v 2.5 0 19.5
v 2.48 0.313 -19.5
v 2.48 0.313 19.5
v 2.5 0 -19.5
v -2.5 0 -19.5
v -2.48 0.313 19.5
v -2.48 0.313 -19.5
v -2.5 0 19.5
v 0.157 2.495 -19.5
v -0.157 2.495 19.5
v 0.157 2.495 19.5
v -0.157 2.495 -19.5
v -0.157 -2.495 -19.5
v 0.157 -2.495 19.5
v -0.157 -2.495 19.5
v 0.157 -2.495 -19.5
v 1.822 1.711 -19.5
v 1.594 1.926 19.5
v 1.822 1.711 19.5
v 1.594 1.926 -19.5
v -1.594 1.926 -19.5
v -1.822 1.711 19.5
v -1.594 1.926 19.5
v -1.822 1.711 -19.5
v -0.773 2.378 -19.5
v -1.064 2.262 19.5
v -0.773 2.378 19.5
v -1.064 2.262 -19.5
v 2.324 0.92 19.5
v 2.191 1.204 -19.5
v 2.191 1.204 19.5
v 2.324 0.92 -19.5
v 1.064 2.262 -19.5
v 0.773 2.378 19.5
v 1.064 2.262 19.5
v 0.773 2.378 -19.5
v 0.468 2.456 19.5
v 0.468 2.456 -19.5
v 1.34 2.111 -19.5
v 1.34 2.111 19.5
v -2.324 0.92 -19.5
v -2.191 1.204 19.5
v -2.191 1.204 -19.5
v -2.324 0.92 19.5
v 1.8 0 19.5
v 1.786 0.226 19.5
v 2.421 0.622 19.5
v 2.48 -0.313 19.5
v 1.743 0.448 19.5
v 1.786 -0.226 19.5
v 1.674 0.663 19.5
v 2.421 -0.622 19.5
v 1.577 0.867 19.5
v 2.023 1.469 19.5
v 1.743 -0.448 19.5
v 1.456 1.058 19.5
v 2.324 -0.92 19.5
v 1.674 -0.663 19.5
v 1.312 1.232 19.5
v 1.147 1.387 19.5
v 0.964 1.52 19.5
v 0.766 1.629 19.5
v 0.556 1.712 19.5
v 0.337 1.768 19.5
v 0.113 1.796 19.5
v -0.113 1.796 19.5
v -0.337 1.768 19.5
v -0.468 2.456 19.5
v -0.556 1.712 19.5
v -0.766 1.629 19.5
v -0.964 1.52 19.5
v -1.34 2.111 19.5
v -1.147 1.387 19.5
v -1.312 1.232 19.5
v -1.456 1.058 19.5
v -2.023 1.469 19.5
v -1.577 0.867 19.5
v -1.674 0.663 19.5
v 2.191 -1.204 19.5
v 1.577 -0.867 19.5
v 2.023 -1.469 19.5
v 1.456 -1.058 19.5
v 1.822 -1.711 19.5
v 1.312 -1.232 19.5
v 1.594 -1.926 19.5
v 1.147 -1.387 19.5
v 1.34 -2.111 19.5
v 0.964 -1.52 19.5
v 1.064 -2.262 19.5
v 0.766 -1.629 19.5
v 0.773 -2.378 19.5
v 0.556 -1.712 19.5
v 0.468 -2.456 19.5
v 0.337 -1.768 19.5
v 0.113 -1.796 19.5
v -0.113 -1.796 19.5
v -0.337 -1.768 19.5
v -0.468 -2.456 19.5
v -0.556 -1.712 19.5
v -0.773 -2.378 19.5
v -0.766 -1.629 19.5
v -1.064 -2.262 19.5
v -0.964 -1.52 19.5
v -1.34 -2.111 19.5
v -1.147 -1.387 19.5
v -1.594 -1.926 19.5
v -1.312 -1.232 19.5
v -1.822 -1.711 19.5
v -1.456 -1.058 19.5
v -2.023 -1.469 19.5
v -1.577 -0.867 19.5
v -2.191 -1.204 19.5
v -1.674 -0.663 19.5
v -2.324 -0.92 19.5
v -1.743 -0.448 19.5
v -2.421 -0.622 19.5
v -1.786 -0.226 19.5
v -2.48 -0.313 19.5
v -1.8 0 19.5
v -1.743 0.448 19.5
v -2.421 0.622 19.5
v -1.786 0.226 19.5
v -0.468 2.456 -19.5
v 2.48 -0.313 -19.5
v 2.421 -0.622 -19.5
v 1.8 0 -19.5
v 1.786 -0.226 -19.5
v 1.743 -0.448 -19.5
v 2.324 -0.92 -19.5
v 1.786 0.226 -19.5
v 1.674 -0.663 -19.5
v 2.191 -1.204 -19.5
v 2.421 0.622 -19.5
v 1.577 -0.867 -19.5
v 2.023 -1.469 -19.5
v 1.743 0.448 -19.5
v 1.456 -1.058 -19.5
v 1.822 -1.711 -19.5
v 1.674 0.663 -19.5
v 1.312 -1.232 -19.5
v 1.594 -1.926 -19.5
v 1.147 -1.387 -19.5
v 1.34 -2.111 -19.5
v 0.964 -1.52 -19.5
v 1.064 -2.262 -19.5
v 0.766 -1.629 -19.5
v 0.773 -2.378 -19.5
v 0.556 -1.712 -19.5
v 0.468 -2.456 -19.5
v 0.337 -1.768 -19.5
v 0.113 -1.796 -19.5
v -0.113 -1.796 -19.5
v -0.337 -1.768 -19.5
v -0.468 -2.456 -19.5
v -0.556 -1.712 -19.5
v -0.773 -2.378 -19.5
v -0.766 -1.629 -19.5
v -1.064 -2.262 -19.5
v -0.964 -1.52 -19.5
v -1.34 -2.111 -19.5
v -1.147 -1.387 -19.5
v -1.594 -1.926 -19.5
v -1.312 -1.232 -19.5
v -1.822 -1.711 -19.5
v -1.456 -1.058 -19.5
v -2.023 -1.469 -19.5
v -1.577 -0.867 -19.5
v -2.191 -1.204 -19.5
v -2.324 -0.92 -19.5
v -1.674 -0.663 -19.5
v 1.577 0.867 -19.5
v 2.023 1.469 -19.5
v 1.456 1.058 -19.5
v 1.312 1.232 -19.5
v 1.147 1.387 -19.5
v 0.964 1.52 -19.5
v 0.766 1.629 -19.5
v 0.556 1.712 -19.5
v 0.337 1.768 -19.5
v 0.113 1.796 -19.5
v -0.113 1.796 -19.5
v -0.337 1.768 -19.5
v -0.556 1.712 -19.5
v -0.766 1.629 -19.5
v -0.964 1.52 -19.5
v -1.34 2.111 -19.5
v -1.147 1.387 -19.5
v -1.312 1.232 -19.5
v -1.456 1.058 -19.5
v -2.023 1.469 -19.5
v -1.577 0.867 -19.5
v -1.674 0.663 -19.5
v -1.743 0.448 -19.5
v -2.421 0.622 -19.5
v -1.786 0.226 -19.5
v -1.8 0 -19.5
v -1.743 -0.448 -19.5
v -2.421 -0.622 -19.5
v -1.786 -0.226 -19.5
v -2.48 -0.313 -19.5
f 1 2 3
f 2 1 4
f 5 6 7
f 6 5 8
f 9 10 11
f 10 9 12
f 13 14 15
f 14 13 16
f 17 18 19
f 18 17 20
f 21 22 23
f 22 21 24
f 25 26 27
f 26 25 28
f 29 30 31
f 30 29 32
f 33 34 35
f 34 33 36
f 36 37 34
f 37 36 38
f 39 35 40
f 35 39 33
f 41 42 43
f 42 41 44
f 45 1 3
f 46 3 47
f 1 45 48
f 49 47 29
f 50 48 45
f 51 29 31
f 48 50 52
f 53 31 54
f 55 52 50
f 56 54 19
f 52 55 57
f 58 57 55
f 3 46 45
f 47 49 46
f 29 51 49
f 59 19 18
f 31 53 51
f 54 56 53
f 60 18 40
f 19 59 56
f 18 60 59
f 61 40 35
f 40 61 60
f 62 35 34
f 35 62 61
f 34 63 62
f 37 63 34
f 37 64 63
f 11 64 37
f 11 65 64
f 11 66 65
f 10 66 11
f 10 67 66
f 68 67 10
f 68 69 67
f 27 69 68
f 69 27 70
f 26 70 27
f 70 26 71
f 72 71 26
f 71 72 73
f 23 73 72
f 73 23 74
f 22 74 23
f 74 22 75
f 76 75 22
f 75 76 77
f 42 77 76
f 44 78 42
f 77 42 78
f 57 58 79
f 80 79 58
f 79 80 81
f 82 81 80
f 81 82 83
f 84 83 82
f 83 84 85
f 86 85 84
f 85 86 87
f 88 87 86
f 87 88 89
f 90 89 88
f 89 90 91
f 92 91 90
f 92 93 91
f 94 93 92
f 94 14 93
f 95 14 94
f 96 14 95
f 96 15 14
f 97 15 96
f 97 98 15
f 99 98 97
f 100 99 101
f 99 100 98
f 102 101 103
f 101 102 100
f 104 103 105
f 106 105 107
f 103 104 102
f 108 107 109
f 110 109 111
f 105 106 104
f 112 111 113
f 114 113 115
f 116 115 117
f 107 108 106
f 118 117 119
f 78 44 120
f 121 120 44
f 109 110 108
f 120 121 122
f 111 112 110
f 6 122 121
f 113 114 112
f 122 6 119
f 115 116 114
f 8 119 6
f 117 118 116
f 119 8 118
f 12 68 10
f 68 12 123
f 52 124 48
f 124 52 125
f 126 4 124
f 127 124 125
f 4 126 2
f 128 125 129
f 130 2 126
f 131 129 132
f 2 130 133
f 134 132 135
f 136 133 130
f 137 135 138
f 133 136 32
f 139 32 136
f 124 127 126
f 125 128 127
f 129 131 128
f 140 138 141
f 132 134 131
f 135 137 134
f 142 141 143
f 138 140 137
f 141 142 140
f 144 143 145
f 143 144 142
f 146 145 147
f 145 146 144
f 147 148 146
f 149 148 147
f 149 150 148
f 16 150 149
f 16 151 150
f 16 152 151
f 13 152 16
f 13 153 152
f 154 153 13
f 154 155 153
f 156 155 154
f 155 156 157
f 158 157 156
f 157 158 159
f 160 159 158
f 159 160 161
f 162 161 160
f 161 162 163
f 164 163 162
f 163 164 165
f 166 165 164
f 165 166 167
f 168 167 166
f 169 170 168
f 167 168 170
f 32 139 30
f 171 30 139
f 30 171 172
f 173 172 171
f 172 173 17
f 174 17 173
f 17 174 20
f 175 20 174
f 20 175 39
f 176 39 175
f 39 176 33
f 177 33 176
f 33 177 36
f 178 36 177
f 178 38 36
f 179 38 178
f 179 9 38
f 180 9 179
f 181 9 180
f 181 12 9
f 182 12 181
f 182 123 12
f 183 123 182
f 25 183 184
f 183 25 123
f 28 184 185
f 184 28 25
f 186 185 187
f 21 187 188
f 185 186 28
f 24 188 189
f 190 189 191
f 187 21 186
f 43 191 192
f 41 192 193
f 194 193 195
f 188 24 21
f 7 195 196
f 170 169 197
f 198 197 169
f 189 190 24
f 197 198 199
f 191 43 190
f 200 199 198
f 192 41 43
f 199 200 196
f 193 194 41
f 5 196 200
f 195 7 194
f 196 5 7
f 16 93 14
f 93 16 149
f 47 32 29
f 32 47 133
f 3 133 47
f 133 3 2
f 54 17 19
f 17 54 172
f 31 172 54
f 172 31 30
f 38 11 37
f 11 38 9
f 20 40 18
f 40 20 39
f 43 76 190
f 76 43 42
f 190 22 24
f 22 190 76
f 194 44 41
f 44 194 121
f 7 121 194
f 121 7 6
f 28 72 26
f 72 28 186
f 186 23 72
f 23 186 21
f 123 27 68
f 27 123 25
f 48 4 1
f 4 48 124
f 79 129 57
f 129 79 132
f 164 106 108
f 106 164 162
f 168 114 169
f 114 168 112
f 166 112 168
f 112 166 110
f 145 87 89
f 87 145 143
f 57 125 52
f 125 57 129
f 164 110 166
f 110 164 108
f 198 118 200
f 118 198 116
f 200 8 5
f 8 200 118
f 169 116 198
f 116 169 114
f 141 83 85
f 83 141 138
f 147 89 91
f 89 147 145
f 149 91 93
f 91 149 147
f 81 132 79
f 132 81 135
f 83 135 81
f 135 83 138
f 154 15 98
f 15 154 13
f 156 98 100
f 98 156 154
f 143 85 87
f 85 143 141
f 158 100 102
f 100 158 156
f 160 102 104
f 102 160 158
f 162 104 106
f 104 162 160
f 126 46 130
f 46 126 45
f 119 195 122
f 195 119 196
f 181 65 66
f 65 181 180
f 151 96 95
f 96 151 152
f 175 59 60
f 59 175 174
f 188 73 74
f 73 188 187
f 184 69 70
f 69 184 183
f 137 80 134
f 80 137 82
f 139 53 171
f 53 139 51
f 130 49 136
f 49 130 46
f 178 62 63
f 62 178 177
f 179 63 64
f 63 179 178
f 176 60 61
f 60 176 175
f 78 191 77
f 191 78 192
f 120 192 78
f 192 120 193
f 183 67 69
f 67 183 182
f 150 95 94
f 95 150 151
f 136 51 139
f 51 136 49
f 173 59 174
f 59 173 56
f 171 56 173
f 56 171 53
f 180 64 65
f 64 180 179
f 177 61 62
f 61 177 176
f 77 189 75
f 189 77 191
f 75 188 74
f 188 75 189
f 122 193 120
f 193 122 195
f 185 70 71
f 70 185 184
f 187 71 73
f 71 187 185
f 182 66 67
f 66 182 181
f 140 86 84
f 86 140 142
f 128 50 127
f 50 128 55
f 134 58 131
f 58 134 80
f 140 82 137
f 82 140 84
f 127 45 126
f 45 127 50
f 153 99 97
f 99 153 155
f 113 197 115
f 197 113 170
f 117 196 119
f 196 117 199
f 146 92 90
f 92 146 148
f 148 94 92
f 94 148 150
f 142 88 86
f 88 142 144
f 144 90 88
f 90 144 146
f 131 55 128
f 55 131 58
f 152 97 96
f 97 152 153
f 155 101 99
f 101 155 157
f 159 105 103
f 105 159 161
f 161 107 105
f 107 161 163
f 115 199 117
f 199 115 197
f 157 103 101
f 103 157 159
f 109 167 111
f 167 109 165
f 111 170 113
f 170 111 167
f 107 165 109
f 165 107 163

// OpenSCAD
$fn = 50;


difference() {
	union() {
		translate(v = [0, 0, -19.5000000000]) {
			cylinder(h = 39, r = 2.5000000000);
		}
	}
	union() {
		translate(v = [0, 0, -100.0000000000]) {
			cylinder(h = 200, r = 1.8000000000);
		}
	}
}
